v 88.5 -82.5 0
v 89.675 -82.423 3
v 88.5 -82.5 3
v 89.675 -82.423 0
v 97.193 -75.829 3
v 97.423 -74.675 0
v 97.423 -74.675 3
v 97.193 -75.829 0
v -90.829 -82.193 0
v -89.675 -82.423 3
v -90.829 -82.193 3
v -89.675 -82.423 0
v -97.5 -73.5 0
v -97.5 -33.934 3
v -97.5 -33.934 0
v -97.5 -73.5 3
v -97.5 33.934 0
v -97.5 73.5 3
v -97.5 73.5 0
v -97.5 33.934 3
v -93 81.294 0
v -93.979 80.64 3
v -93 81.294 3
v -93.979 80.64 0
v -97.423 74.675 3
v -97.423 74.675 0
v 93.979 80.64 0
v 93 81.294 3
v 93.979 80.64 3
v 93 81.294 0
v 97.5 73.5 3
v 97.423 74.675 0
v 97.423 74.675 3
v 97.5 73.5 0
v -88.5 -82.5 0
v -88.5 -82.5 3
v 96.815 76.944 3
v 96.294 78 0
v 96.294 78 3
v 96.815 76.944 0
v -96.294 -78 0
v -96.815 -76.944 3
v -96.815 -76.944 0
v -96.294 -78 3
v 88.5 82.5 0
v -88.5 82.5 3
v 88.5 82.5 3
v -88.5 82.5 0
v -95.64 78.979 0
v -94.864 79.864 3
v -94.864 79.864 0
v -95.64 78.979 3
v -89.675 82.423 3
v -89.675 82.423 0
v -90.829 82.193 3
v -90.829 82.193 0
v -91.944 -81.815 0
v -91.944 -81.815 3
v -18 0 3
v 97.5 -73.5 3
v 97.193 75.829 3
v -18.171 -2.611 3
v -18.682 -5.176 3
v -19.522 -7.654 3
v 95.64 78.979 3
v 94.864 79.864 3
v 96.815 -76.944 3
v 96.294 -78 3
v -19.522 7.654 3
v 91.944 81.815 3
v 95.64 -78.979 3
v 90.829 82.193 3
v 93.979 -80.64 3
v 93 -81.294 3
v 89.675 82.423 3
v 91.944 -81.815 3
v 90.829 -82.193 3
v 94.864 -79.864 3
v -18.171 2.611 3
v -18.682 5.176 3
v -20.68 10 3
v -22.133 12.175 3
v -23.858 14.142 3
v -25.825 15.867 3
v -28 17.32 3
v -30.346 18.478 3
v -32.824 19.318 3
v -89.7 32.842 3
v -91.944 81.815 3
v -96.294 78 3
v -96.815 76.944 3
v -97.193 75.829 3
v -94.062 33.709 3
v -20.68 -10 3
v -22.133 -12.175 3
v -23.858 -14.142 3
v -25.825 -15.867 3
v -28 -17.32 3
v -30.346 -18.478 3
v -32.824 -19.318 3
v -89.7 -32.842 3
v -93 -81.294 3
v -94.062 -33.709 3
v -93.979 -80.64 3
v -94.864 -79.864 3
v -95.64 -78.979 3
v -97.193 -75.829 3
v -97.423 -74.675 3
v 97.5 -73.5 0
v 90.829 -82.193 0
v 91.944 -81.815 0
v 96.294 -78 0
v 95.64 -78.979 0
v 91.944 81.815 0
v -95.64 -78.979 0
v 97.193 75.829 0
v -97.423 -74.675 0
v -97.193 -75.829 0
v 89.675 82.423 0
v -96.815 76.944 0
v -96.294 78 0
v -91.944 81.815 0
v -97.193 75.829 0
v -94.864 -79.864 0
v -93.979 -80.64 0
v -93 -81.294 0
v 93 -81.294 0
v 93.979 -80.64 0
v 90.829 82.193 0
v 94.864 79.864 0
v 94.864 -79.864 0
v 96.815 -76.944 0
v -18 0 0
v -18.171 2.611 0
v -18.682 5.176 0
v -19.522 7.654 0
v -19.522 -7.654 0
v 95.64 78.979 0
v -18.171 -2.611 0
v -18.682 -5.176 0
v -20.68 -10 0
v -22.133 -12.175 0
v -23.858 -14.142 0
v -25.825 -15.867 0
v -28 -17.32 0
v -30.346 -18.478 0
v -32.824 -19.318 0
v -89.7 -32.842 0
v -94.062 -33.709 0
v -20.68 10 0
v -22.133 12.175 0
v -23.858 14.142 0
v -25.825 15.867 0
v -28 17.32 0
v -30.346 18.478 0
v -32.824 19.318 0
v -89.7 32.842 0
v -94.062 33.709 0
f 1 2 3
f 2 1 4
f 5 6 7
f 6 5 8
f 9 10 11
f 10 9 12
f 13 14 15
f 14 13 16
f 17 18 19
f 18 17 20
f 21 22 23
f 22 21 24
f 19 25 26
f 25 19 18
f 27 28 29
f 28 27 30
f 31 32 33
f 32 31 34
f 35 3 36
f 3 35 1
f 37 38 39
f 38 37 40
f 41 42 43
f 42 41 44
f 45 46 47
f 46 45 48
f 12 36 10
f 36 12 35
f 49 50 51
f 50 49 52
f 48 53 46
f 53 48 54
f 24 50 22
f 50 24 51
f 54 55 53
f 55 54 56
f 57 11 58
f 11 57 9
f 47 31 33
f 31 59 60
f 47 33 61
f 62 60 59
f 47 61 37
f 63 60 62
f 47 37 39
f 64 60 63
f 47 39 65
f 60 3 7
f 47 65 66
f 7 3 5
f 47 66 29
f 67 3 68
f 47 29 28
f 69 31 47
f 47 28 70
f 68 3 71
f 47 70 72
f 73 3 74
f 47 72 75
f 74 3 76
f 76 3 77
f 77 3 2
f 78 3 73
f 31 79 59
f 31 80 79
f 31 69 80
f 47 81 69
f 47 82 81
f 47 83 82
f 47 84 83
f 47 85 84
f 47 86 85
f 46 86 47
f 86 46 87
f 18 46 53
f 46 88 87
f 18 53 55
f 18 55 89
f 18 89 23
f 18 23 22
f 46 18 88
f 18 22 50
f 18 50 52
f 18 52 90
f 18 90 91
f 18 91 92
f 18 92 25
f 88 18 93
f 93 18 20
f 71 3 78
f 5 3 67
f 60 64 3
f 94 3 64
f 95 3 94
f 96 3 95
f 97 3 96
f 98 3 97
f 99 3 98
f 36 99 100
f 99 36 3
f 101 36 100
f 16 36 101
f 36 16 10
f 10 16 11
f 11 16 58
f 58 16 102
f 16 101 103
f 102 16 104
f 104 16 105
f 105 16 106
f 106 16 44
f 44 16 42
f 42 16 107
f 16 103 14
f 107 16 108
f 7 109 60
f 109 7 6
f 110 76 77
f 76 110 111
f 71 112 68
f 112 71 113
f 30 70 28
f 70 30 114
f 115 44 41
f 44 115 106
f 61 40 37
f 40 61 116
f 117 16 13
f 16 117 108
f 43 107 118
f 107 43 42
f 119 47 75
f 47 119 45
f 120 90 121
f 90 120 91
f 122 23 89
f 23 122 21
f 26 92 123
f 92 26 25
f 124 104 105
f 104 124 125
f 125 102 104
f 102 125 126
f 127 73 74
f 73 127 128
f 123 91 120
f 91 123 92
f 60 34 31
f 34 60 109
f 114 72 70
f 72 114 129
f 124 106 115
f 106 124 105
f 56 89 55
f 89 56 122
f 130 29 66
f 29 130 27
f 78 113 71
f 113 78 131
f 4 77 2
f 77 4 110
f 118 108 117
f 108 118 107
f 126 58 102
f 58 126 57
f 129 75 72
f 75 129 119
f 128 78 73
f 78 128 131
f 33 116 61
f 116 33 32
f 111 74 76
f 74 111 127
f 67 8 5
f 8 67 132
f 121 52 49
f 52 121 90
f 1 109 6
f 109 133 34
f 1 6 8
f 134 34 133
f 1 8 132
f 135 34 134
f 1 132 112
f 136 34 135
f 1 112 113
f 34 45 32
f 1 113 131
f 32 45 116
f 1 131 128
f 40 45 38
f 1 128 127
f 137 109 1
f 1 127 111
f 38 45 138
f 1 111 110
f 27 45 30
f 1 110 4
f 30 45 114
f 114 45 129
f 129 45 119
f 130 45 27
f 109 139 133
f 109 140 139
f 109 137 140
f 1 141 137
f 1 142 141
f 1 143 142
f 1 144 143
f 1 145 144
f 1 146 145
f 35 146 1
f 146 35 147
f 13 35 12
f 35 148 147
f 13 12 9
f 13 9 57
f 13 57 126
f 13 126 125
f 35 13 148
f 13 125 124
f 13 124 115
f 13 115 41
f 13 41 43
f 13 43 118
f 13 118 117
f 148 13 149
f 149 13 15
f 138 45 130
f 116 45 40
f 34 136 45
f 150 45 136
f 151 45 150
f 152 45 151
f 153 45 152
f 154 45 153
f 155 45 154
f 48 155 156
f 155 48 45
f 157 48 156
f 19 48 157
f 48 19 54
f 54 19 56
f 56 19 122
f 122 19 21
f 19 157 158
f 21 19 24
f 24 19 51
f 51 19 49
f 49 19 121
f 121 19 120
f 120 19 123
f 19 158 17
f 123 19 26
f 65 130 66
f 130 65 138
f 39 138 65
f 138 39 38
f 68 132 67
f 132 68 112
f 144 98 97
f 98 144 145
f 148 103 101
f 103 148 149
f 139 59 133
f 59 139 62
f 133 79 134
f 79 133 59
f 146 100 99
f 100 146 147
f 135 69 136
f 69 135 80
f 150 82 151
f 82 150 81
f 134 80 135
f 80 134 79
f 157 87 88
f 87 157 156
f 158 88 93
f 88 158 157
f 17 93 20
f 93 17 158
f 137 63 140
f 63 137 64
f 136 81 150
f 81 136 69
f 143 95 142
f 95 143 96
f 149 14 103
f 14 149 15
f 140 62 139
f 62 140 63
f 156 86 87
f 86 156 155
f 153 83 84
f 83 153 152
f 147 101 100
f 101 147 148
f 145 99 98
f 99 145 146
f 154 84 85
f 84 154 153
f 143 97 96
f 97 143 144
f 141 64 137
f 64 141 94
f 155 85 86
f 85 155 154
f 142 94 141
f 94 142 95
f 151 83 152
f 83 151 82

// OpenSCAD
// ============================================================================
//  shelf_plain.scad  --  stripped-down upper shelf
// ============================================================================
//  The canis_v4 shelf() has: engraved numbers 7/8/9, a raised stick-mount tray,
//  board standoff posts, screw holes, and wire pass-throughs.  Per request this
//  is JUST the flat plate + the rear hopper notch -- no labels, no raised mounts,
//  no holes.  Mount boards / bolt it down using your own holes (metal-chassis
//  grid).  Uses canis_v4.scad's rr() so the outline is byte-identical; the file
//  itself is untouched.
// ============================================================================
use <canis_v4.scad>
$fn = 48;
eps = 0.02;

// --- from canis_v4.scad (verified) ---
shelf_l = 195; shelf_w = 165; shelf_t = 3; fillet = 9;
notch_x = -shelf_l/2; notch_r = 34;

module shelf_plain(){
  difference(){
    rr(shelf_l, shelf_w, fillet, shelf_t);                       // flat plate
    // rear hopper notch (verbatim from canis_v4 shelf())
    hull(){
      translate([notch_x-1, 0,-eps]) cylinder(r=notch_r,h=shelf_t+2*eps);
      translate([notch_x-40,0,-eps]) cylinder(r=notch_r,h=shelf_t+2*eps);
      translate([-38,     0,-eps])   cylinder(r=20,    h=shelf_t+2*eps);
    }
  }
}
shelf_plain();
